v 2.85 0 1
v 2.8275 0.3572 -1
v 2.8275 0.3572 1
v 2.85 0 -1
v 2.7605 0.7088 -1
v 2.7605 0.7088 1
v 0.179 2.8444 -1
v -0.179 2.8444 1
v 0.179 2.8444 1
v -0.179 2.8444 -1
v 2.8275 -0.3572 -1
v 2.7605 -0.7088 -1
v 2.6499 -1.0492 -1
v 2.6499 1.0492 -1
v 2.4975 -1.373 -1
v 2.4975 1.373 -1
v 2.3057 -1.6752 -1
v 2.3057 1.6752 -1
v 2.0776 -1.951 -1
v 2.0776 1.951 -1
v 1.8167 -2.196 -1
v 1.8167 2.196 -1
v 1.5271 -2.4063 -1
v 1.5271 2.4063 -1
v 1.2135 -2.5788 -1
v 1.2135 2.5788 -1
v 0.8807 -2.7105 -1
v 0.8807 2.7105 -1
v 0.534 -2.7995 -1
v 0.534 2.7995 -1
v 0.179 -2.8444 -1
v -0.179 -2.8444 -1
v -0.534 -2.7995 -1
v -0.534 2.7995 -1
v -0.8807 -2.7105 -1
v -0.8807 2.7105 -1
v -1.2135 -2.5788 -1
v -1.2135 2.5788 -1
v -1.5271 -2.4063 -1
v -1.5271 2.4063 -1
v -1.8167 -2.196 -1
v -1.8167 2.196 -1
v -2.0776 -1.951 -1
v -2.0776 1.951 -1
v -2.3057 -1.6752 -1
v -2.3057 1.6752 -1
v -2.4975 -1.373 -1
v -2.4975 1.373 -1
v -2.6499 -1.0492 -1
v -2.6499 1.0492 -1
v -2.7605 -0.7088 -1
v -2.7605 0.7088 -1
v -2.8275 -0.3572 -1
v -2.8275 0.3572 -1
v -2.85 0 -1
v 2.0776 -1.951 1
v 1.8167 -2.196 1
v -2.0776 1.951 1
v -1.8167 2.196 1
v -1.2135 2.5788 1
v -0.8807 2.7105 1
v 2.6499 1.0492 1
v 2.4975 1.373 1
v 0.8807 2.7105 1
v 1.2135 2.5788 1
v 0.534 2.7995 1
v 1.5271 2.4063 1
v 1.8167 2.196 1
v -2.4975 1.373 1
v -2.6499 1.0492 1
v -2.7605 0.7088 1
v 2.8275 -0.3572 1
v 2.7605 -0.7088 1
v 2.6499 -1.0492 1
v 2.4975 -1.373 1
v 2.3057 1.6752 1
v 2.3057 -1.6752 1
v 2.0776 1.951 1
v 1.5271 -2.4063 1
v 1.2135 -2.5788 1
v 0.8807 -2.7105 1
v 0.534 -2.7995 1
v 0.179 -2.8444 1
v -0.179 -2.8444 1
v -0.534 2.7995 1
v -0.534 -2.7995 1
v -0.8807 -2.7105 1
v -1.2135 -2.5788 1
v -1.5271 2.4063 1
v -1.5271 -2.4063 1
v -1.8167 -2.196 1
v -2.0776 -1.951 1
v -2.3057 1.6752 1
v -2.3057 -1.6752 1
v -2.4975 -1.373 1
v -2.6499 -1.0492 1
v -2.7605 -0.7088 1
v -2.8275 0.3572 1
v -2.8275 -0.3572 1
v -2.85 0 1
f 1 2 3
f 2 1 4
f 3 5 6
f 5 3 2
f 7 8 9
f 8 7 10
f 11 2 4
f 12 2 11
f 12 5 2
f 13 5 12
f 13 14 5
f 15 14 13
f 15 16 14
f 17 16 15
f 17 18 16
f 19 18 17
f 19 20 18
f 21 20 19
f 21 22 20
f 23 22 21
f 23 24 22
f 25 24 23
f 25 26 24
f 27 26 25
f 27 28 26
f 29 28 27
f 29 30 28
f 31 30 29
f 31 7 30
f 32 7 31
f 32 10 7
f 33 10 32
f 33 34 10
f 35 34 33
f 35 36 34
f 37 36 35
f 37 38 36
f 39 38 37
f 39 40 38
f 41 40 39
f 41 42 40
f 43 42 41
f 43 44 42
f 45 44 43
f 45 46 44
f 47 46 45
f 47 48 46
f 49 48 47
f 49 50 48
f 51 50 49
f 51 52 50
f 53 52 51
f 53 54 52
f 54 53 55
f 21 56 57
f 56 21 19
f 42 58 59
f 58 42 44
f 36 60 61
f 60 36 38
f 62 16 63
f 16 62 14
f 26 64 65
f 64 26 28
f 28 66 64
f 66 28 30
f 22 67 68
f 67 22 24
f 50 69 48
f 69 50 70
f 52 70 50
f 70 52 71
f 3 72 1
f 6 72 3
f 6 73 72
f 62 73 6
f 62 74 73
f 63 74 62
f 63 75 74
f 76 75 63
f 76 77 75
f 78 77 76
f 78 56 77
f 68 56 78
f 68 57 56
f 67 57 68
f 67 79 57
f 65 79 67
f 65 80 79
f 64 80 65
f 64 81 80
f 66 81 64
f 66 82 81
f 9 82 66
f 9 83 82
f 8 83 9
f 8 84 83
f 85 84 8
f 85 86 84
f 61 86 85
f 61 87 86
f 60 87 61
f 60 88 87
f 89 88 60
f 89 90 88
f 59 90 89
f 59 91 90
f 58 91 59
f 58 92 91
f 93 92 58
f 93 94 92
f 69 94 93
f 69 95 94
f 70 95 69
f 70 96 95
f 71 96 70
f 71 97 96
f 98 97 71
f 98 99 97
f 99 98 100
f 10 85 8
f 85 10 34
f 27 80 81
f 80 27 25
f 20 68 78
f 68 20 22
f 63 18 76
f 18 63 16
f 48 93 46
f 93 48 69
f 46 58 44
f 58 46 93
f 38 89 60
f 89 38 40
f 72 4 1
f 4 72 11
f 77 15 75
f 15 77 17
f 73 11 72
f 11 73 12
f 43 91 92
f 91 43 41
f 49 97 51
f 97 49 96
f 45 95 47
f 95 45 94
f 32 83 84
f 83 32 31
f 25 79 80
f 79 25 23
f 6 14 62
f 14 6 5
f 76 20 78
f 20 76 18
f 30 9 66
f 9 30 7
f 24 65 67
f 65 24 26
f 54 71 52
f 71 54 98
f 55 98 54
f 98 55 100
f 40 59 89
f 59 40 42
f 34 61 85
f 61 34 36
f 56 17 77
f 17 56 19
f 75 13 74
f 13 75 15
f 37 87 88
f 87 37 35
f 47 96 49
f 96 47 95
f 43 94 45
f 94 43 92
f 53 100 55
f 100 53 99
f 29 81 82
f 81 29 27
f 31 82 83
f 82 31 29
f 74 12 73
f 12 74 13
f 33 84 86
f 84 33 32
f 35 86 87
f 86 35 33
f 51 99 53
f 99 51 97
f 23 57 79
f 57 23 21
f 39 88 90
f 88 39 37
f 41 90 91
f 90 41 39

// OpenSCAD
$fn = 50;


difference() {
	union() {
		translate(v = [0, 0, -1.0000000000]) {
			cylinder(h = 2, r = 2.8500000000);
		}
	}
	union() {
		translate(v = [0, 0, -100.0000000000]) {
			cylinder(h = 200, r = 0);
		}
	}
}
